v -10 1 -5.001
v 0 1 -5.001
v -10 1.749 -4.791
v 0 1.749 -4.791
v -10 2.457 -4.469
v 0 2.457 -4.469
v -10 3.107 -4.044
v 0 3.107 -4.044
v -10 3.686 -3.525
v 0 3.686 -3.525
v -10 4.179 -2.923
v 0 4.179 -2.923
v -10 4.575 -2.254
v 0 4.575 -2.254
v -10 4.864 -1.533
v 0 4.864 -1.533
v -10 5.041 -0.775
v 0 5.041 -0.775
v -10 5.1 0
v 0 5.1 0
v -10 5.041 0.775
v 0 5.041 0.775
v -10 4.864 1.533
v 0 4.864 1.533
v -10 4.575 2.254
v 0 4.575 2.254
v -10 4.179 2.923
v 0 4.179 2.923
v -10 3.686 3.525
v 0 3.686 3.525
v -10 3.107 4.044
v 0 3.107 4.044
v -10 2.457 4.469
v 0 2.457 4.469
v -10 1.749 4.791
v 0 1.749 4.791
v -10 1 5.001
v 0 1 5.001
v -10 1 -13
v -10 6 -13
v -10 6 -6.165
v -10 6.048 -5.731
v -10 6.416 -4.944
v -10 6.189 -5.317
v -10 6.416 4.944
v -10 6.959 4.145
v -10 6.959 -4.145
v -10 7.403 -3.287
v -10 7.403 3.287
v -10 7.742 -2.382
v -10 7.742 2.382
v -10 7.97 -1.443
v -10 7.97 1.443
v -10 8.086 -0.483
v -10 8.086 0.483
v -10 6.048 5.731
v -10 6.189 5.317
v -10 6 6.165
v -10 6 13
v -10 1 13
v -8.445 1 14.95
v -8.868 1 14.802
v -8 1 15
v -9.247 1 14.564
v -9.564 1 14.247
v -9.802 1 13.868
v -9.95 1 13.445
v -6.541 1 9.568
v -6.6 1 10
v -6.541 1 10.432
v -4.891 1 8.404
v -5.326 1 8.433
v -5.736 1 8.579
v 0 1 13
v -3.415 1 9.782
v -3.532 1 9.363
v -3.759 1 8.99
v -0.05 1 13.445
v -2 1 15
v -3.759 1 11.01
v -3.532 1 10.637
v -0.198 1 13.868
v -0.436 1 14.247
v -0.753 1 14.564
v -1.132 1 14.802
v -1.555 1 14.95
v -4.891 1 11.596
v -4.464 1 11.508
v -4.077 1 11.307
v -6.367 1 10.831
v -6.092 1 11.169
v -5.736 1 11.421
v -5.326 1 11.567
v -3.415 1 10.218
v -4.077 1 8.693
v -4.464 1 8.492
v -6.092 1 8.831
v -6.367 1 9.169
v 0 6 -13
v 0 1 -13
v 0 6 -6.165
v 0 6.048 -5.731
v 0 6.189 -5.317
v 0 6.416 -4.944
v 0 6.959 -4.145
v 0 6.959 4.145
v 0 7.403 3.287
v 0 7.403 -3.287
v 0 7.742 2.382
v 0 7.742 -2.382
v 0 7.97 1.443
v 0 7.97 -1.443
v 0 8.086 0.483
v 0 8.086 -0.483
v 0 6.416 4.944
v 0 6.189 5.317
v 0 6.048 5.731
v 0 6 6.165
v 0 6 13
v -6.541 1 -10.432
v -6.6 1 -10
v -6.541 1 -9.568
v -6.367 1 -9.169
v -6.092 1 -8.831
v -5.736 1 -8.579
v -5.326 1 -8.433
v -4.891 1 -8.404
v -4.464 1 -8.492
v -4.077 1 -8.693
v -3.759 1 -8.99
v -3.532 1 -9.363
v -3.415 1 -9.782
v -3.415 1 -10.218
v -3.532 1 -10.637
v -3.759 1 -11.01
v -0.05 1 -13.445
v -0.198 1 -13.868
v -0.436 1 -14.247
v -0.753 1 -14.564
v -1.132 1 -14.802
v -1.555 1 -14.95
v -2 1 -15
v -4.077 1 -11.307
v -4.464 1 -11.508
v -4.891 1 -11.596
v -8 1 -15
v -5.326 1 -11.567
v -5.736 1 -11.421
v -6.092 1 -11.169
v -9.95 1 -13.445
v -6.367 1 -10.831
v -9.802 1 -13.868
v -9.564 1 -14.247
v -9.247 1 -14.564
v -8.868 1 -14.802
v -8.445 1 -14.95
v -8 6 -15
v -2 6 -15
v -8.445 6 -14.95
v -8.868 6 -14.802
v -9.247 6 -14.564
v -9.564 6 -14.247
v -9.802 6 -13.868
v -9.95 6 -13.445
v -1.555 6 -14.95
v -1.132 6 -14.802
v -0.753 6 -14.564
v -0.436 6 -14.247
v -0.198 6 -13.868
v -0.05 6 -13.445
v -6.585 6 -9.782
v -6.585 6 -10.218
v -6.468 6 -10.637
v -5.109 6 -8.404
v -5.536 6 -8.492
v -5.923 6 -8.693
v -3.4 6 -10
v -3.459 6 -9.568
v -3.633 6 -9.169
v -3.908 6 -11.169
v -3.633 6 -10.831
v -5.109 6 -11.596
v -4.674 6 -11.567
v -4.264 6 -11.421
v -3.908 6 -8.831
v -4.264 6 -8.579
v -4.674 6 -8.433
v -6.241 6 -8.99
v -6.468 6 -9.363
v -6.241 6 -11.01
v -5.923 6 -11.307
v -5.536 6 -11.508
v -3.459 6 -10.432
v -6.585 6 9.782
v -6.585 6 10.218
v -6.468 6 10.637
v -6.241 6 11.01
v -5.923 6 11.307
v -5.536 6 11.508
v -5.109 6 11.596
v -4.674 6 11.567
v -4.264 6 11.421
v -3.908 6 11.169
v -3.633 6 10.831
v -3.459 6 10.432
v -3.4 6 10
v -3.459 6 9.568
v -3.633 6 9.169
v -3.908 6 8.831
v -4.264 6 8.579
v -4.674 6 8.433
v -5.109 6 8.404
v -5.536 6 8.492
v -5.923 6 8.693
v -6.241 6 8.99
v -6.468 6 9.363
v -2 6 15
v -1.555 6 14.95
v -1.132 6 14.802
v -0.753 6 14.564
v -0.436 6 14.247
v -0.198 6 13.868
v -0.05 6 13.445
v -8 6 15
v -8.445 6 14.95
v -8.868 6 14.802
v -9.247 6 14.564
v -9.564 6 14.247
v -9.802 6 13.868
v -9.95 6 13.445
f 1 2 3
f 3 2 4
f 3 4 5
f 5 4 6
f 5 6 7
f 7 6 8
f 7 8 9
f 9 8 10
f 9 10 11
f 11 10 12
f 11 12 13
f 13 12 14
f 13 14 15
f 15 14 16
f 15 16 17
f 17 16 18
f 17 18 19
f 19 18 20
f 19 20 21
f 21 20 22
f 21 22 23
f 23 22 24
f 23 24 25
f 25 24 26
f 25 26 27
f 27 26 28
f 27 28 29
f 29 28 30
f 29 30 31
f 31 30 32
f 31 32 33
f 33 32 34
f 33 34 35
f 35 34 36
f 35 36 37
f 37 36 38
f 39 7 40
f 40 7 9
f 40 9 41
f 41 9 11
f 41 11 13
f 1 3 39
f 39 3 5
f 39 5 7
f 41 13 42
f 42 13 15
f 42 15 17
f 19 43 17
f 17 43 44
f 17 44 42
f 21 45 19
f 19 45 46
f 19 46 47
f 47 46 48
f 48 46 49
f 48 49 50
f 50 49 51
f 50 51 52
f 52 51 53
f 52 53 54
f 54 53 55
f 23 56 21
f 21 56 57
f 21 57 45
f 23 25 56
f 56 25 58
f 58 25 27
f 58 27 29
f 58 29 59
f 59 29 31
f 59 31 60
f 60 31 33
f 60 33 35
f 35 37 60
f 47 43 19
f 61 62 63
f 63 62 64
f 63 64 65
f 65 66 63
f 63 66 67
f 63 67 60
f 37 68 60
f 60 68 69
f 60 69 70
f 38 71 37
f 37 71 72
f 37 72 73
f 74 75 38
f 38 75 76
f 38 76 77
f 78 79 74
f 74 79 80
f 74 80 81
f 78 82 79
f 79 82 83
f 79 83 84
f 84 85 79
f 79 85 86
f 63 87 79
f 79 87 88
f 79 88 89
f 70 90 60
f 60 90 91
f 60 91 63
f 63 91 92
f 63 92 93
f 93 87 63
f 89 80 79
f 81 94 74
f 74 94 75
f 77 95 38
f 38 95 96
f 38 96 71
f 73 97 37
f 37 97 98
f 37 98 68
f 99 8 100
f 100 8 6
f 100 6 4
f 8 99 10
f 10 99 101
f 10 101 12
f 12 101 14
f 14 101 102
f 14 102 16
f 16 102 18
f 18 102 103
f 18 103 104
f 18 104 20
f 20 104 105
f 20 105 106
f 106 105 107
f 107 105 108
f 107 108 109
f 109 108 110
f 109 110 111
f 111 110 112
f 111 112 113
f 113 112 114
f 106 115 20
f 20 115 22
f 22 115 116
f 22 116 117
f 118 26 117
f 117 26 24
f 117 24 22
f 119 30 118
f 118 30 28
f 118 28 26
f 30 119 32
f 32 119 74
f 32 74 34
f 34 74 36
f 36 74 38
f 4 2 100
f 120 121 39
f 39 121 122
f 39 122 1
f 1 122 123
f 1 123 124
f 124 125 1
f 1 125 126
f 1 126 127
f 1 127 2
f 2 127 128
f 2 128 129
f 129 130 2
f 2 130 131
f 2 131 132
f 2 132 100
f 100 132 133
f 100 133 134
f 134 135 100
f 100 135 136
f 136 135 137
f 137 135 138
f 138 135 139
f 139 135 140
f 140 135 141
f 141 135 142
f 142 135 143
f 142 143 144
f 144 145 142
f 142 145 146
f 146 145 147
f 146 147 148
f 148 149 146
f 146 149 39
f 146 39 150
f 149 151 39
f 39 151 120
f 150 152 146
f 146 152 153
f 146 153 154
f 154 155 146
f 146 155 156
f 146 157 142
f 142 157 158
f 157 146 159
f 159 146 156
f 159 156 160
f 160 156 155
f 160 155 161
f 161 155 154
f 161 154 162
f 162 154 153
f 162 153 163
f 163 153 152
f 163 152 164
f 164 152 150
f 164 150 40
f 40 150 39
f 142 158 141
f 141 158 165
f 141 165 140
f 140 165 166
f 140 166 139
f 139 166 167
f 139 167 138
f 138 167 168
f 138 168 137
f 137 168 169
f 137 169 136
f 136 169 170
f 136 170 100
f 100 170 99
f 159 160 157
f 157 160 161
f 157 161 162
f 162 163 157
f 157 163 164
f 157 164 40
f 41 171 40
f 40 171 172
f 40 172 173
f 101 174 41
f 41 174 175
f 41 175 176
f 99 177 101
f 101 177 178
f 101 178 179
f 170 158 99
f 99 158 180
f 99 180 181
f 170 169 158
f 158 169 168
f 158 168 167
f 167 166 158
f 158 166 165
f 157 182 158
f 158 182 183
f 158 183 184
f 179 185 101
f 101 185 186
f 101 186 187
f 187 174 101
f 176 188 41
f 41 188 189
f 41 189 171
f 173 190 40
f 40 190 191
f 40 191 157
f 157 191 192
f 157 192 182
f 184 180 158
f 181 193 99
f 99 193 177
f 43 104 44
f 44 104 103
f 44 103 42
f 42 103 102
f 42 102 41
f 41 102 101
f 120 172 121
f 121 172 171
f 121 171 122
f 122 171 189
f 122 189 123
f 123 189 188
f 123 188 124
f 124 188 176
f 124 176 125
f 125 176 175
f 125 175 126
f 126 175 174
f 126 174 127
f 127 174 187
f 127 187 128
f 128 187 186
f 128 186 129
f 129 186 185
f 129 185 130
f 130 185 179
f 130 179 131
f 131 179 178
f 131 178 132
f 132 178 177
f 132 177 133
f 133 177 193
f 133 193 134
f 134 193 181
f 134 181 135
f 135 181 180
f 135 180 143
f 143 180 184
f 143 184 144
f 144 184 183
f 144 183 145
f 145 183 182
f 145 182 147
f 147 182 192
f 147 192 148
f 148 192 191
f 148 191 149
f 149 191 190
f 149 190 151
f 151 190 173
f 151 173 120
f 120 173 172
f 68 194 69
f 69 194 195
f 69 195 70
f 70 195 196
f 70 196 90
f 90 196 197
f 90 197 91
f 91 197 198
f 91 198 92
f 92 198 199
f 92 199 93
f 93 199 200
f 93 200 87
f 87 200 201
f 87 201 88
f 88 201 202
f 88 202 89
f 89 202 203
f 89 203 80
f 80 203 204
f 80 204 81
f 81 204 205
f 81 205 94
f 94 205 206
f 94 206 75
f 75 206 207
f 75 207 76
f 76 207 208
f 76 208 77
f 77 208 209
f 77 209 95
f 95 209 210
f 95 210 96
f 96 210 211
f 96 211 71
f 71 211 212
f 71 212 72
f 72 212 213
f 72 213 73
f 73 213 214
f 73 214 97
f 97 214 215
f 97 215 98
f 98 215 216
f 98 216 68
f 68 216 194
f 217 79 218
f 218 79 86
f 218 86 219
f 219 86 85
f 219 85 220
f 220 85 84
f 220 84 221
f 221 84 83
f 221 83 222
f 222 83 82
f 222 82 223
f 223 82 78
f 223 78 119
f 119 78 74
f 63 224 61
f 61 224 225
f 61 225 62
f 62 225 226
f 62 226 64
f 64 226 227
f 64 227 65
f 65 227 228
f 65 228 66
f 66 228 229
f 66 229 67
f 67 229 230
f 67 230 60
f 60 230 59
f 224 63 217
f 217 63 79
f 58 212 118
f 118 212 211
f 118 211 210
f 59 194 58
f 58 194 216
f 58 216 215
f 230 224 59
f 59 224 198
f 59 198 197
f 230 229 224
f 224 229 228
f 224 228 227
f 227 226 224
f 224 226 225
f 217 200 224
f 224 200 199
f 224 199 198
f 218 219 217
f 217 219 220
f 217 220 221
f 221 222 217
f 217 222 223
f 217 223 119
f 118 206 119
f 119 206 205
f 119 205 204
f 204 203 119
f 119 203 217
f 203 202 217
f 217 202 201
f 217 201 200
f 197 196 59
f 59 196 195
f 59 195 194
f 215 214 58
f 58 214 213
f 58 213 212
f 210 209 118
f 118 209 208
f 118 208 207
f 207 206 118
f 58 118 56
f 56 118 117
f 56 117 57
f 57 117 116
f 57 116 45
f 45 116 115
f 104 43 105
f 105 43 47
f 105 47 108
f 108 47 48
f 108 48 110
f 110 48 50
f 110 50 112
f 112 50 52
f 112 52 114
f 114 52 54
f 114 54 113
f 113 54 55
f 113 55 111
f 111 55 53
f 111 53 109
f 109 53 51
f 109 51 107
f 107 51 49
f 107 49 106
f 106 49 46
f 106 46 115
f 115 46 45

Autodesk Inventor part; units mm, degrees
ref_plane "YZ Plane" through (0, 0, 0) normal (1, 0, 0) x (0, 1, 0)
ref_plane "XZ Plane" through (0, 0, 0) normal (0, 1, 0) x (-1, 0, 0)
ref_plane "XY Plane" through (0, 0, 0) normal (0, 0, 1) x (1, 0, 0)
sketch "スケッチ1" plane through (0, 0, 0) normal (1, 0, 0) x (0, 1, 0)
  circle A0 centre (0, 0) radius 5.1
  line L0 (1, 15) -> (6, 15)
  line L1 (6, 15) -> (6, -15)
  line L2 (6, -15) -> (1, -15)
  line L3 (1, -15) -> (1, 15)
  circle A1 centre (0, 0) radius 8.1
  point P0 (1, 5.001)
  point P1 (1, -5.001)
  point P2 (6, -5.4415)
  point P3 (6, 5.4415)
  dimension "d0" = 10.2
  dimension "d1" = 1
  dimension "d2" = 30
  dimension "d3" = 15
  dimension "d4" = 5
  dimension "d5" = 3
extrude "押し出し1" add sketch "スケッチ1" against normal blind 10 contours A0 L3 A1 L1 | L3 L0 L1 A1 | A1 L1 L2 L3 | A1 L1
sketch "スケッチ2" plane through (0, 6, 15) normal (0, 1, 0) x (1, 0, 0)
  line L0 (0, 9.5585) -> (0, 0) projected
  line L1 (0, 0) -> (-10, 0) projected
  line L2 (0, 30) -> (0, 20.4415) projected
  line L3 (0, 30) -> (-10, 30) projected
  point P0 (0, 15)
  point P1 (-5, 5)
  point P2 (-5, 25)
  dimension "d8" = 5
  dimension "d9" = 5
  dimension "d10" = 5
  dimension "d11" = 5
hole "穴1" at (-5, 6, 10) at (-5, 6, -10) direction (0, -1, 0) diameter 3.2 end through all
fillet "フィレット1" radius 2 6 edges at (0, 3.5, 15) (-10, 3.5, 15) (-5, 6, 5.4415) (-5, 6, -5.4415) (0, 3.5, -15) (-10, 3.5, -15)
properties part number "belt_liner_v5_3DP_P-2" material "ABS プラスチック"
